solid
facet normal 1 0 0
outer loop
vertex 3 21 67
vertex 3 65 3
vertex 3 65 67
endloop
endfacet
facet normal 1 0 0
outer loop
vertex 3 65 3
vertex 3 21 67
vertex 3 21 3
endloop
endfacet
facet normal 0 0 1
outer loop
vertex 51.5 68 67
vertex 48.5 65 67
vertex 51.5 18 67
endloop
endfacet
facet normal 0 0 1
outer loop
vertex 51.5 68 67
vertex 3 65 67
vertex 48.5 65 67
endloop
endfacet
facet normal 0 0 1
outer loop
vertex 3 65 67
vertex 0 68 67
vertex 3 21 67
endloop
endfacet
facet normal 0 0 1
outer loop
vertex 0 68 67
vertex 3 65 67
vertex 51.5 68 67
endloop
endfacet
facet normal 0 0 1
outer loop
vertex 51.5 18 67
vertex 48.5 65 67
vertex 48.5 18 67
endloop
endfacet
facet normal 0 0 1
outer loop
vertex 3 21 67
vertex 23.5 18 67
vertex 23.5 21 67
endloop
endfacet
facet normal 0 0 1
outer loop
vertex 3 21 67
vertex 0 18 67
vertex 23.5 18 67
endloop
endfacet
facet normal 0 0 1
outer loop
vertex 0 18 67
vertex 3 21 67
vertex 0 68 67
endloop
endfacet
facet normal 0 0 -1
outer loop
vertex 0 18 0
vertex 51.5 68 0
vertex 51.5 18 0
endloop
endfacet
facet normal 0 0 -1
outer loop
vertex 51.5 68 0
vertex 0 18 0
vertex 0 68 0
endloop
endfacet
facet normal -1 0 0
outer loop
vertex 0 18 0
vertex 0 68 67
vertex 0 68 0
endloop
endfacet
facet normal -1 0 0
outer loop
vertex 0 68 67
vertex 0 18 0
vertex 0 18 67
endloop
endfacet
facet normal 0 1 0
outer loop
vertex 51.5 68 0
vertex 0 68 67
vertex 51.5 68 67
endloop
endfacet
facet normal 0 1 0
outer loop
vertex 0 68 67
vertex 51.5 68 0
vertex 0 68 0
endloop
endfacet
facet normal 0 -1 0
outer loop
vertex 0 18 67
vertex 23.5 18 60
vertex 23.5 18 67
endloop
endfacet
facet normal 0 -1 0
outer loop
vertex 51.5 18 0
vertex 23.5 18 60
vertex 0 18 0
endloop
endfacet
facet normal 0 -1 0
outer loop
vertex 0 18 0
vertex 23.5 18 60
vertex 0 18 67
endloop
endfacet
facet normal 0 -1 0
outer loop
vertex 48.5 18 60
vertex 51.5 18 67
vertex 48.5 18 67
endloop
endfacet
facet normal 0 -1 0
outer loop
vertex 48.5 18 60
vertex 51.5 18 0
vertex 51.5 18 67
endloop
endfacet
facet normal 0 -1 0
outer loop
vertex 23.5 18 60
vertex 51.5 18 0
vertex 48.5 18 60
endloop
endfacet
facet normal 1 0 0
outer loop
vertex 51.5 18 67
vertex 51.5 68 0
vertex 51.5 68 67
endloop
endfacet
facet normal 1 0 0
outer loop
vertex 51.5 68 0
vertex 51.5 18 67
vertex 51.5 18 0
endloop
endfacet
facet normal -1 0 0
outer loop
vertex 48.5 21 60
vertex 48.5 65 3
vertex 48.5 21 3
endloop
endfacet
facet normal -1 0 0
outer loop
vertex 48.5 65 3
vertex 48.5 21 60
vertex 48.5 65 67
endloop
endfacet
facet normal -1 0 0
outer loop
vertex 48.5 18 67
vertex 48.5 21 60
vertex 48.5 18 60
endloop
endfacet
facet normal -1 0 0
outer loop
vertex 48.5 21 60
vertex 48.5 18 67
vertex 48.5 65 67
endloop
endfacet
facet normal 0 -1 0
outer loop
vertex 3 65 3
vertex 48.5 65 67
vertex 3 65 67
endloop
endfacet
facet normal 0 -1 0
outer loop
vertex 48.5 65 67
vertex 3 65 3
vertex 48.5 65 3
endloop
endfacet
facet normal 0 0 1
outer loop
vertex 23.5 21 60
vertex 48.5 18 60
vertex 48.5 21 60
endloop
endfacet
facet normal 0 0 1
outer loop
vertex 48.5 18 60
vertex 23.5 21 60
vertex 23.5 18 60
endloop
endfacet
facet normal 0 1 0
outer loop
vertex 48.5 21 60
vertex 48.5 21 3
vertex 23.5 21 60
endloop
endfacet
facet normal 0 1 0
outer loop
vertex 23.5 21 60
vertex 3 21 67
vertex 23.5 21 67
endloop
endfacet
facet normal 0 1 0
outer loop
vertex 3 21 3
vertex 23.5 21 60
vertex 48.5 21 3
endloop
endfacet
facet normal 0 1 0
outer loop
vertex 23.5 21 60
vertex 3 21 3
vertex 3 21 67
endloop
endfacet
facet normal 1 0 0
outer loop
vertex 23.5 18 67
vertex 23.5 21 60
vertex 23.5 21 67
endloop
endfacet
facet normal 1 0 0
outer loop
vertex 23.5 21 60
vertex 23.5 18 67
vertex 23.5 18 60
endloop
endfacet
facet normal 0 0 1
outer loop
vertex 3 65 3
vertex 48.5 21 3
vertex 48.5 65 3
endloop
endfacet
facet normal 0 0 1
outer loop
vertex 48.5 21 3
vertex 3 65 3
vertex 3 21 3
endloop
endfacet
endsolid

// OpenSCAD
//Este codigo es como hacer un clip que se ajusta automaticamente a un acrilico de un espesor z, un largo x a una profunidad y.Generalmente usamos el espesor del acrilico mas 1mm (grosor papel). Ademas se puede prolongar hasta una determinado extra para mayor presion. Con paredes de espesor de 3.
//input
//Medidas acrilico
eAc = 3; //espesor del acrilico
aAc = 100; //ancho del acrilico
iAc = 25; //medidas del inserto de acrilico en el dispositivo.
//Medidas impresion 3D
gp3D = 3; // grosor de la pared impresa en 3D
c3D = 15; //cobertura del plastico que esta superpuesto al acrilico
re3D = 17.5; //radio externo del filtro
ri3D = 13.5; //radio interno del filtro
em3D = 2; //embutido del filtro en la pared 3D
//Medidas extensiones, son utiles para aumentar la superficie de contacto que alica presion sobre el extremo del acrilico.
pEx = 15; //protrusion de la extension desde el final del cuerpo mayor, cuando sale la extension. Suele ser similar al c3D.
aEx = 15; //ancho de la protusion del cuerpo mayor. Suele ser similar al c3D.
//Medidas papel
ePa = 1; //espesor del papel. Considerado para la presion que hara el clip sobre este. Suele ser consierado como 1mm.

//Medidas Source
lSo = 50; //largo de la fuente.
aSo = aAc; //ancho de la fuente. Modificable aunque suele ser del ancho del acrilico.
hSo = 67;

//output
//Medidas del clip
xPl = gp3D; // componente de la pared lateral en el eje x.
yPl = gp3D + c3D; // componente de la pared lateral en el eje y.
zPl = 2*eAc + 2*gp3D + ePa; // componente de la pared lateral en el eje z.
xPp = aAc + 2*gp3D; // componente de la pared posterior en el eje x.
yPp = gp3D; // componente de la pared posterior en el eje y.
zPp = zPl; // componente de la pared posterior en el eje z.
xPs = xPp; // componente de la pared superior en el eje x.
yPs = yPl; // componente de la pared superior en el eje y.
zPs = gp3D; // componente de la pared superior en el eje z.

//SOURCE
translate([0,yPl,0])
    cube([xPl,lSo,hSo]); //left
translate([((aAc/2)+(gp3D/2)-gp3D),yPl,0])
    cube([xPl,lSo,hSo]);//right
translate([0,lSo+yPl-gp3D,0])
    cube([((aAc/2)+(gp3D/2)),yPp,hSo]); //back  
translate([0,yPl,0])
    cube([((aAc/2)+(gp3D/2)),yPp,(hSo - (eAc*2 + ePa))]); //front   
translate([0,yPl,(hSo - (eAc*2 + ePa))])
    cube([((aAc/2)+(gp3D/2)-iAc-3),yPp,((eAc*2 + ePa))]); //front append
translate([0,yPl,0])
    cube([((aAc/2)+(gp3D/2)),lSo,gp3D]); //base
    
//color("blue")
//translate([23.5,0,0])
//cube([(25),30,30]);
